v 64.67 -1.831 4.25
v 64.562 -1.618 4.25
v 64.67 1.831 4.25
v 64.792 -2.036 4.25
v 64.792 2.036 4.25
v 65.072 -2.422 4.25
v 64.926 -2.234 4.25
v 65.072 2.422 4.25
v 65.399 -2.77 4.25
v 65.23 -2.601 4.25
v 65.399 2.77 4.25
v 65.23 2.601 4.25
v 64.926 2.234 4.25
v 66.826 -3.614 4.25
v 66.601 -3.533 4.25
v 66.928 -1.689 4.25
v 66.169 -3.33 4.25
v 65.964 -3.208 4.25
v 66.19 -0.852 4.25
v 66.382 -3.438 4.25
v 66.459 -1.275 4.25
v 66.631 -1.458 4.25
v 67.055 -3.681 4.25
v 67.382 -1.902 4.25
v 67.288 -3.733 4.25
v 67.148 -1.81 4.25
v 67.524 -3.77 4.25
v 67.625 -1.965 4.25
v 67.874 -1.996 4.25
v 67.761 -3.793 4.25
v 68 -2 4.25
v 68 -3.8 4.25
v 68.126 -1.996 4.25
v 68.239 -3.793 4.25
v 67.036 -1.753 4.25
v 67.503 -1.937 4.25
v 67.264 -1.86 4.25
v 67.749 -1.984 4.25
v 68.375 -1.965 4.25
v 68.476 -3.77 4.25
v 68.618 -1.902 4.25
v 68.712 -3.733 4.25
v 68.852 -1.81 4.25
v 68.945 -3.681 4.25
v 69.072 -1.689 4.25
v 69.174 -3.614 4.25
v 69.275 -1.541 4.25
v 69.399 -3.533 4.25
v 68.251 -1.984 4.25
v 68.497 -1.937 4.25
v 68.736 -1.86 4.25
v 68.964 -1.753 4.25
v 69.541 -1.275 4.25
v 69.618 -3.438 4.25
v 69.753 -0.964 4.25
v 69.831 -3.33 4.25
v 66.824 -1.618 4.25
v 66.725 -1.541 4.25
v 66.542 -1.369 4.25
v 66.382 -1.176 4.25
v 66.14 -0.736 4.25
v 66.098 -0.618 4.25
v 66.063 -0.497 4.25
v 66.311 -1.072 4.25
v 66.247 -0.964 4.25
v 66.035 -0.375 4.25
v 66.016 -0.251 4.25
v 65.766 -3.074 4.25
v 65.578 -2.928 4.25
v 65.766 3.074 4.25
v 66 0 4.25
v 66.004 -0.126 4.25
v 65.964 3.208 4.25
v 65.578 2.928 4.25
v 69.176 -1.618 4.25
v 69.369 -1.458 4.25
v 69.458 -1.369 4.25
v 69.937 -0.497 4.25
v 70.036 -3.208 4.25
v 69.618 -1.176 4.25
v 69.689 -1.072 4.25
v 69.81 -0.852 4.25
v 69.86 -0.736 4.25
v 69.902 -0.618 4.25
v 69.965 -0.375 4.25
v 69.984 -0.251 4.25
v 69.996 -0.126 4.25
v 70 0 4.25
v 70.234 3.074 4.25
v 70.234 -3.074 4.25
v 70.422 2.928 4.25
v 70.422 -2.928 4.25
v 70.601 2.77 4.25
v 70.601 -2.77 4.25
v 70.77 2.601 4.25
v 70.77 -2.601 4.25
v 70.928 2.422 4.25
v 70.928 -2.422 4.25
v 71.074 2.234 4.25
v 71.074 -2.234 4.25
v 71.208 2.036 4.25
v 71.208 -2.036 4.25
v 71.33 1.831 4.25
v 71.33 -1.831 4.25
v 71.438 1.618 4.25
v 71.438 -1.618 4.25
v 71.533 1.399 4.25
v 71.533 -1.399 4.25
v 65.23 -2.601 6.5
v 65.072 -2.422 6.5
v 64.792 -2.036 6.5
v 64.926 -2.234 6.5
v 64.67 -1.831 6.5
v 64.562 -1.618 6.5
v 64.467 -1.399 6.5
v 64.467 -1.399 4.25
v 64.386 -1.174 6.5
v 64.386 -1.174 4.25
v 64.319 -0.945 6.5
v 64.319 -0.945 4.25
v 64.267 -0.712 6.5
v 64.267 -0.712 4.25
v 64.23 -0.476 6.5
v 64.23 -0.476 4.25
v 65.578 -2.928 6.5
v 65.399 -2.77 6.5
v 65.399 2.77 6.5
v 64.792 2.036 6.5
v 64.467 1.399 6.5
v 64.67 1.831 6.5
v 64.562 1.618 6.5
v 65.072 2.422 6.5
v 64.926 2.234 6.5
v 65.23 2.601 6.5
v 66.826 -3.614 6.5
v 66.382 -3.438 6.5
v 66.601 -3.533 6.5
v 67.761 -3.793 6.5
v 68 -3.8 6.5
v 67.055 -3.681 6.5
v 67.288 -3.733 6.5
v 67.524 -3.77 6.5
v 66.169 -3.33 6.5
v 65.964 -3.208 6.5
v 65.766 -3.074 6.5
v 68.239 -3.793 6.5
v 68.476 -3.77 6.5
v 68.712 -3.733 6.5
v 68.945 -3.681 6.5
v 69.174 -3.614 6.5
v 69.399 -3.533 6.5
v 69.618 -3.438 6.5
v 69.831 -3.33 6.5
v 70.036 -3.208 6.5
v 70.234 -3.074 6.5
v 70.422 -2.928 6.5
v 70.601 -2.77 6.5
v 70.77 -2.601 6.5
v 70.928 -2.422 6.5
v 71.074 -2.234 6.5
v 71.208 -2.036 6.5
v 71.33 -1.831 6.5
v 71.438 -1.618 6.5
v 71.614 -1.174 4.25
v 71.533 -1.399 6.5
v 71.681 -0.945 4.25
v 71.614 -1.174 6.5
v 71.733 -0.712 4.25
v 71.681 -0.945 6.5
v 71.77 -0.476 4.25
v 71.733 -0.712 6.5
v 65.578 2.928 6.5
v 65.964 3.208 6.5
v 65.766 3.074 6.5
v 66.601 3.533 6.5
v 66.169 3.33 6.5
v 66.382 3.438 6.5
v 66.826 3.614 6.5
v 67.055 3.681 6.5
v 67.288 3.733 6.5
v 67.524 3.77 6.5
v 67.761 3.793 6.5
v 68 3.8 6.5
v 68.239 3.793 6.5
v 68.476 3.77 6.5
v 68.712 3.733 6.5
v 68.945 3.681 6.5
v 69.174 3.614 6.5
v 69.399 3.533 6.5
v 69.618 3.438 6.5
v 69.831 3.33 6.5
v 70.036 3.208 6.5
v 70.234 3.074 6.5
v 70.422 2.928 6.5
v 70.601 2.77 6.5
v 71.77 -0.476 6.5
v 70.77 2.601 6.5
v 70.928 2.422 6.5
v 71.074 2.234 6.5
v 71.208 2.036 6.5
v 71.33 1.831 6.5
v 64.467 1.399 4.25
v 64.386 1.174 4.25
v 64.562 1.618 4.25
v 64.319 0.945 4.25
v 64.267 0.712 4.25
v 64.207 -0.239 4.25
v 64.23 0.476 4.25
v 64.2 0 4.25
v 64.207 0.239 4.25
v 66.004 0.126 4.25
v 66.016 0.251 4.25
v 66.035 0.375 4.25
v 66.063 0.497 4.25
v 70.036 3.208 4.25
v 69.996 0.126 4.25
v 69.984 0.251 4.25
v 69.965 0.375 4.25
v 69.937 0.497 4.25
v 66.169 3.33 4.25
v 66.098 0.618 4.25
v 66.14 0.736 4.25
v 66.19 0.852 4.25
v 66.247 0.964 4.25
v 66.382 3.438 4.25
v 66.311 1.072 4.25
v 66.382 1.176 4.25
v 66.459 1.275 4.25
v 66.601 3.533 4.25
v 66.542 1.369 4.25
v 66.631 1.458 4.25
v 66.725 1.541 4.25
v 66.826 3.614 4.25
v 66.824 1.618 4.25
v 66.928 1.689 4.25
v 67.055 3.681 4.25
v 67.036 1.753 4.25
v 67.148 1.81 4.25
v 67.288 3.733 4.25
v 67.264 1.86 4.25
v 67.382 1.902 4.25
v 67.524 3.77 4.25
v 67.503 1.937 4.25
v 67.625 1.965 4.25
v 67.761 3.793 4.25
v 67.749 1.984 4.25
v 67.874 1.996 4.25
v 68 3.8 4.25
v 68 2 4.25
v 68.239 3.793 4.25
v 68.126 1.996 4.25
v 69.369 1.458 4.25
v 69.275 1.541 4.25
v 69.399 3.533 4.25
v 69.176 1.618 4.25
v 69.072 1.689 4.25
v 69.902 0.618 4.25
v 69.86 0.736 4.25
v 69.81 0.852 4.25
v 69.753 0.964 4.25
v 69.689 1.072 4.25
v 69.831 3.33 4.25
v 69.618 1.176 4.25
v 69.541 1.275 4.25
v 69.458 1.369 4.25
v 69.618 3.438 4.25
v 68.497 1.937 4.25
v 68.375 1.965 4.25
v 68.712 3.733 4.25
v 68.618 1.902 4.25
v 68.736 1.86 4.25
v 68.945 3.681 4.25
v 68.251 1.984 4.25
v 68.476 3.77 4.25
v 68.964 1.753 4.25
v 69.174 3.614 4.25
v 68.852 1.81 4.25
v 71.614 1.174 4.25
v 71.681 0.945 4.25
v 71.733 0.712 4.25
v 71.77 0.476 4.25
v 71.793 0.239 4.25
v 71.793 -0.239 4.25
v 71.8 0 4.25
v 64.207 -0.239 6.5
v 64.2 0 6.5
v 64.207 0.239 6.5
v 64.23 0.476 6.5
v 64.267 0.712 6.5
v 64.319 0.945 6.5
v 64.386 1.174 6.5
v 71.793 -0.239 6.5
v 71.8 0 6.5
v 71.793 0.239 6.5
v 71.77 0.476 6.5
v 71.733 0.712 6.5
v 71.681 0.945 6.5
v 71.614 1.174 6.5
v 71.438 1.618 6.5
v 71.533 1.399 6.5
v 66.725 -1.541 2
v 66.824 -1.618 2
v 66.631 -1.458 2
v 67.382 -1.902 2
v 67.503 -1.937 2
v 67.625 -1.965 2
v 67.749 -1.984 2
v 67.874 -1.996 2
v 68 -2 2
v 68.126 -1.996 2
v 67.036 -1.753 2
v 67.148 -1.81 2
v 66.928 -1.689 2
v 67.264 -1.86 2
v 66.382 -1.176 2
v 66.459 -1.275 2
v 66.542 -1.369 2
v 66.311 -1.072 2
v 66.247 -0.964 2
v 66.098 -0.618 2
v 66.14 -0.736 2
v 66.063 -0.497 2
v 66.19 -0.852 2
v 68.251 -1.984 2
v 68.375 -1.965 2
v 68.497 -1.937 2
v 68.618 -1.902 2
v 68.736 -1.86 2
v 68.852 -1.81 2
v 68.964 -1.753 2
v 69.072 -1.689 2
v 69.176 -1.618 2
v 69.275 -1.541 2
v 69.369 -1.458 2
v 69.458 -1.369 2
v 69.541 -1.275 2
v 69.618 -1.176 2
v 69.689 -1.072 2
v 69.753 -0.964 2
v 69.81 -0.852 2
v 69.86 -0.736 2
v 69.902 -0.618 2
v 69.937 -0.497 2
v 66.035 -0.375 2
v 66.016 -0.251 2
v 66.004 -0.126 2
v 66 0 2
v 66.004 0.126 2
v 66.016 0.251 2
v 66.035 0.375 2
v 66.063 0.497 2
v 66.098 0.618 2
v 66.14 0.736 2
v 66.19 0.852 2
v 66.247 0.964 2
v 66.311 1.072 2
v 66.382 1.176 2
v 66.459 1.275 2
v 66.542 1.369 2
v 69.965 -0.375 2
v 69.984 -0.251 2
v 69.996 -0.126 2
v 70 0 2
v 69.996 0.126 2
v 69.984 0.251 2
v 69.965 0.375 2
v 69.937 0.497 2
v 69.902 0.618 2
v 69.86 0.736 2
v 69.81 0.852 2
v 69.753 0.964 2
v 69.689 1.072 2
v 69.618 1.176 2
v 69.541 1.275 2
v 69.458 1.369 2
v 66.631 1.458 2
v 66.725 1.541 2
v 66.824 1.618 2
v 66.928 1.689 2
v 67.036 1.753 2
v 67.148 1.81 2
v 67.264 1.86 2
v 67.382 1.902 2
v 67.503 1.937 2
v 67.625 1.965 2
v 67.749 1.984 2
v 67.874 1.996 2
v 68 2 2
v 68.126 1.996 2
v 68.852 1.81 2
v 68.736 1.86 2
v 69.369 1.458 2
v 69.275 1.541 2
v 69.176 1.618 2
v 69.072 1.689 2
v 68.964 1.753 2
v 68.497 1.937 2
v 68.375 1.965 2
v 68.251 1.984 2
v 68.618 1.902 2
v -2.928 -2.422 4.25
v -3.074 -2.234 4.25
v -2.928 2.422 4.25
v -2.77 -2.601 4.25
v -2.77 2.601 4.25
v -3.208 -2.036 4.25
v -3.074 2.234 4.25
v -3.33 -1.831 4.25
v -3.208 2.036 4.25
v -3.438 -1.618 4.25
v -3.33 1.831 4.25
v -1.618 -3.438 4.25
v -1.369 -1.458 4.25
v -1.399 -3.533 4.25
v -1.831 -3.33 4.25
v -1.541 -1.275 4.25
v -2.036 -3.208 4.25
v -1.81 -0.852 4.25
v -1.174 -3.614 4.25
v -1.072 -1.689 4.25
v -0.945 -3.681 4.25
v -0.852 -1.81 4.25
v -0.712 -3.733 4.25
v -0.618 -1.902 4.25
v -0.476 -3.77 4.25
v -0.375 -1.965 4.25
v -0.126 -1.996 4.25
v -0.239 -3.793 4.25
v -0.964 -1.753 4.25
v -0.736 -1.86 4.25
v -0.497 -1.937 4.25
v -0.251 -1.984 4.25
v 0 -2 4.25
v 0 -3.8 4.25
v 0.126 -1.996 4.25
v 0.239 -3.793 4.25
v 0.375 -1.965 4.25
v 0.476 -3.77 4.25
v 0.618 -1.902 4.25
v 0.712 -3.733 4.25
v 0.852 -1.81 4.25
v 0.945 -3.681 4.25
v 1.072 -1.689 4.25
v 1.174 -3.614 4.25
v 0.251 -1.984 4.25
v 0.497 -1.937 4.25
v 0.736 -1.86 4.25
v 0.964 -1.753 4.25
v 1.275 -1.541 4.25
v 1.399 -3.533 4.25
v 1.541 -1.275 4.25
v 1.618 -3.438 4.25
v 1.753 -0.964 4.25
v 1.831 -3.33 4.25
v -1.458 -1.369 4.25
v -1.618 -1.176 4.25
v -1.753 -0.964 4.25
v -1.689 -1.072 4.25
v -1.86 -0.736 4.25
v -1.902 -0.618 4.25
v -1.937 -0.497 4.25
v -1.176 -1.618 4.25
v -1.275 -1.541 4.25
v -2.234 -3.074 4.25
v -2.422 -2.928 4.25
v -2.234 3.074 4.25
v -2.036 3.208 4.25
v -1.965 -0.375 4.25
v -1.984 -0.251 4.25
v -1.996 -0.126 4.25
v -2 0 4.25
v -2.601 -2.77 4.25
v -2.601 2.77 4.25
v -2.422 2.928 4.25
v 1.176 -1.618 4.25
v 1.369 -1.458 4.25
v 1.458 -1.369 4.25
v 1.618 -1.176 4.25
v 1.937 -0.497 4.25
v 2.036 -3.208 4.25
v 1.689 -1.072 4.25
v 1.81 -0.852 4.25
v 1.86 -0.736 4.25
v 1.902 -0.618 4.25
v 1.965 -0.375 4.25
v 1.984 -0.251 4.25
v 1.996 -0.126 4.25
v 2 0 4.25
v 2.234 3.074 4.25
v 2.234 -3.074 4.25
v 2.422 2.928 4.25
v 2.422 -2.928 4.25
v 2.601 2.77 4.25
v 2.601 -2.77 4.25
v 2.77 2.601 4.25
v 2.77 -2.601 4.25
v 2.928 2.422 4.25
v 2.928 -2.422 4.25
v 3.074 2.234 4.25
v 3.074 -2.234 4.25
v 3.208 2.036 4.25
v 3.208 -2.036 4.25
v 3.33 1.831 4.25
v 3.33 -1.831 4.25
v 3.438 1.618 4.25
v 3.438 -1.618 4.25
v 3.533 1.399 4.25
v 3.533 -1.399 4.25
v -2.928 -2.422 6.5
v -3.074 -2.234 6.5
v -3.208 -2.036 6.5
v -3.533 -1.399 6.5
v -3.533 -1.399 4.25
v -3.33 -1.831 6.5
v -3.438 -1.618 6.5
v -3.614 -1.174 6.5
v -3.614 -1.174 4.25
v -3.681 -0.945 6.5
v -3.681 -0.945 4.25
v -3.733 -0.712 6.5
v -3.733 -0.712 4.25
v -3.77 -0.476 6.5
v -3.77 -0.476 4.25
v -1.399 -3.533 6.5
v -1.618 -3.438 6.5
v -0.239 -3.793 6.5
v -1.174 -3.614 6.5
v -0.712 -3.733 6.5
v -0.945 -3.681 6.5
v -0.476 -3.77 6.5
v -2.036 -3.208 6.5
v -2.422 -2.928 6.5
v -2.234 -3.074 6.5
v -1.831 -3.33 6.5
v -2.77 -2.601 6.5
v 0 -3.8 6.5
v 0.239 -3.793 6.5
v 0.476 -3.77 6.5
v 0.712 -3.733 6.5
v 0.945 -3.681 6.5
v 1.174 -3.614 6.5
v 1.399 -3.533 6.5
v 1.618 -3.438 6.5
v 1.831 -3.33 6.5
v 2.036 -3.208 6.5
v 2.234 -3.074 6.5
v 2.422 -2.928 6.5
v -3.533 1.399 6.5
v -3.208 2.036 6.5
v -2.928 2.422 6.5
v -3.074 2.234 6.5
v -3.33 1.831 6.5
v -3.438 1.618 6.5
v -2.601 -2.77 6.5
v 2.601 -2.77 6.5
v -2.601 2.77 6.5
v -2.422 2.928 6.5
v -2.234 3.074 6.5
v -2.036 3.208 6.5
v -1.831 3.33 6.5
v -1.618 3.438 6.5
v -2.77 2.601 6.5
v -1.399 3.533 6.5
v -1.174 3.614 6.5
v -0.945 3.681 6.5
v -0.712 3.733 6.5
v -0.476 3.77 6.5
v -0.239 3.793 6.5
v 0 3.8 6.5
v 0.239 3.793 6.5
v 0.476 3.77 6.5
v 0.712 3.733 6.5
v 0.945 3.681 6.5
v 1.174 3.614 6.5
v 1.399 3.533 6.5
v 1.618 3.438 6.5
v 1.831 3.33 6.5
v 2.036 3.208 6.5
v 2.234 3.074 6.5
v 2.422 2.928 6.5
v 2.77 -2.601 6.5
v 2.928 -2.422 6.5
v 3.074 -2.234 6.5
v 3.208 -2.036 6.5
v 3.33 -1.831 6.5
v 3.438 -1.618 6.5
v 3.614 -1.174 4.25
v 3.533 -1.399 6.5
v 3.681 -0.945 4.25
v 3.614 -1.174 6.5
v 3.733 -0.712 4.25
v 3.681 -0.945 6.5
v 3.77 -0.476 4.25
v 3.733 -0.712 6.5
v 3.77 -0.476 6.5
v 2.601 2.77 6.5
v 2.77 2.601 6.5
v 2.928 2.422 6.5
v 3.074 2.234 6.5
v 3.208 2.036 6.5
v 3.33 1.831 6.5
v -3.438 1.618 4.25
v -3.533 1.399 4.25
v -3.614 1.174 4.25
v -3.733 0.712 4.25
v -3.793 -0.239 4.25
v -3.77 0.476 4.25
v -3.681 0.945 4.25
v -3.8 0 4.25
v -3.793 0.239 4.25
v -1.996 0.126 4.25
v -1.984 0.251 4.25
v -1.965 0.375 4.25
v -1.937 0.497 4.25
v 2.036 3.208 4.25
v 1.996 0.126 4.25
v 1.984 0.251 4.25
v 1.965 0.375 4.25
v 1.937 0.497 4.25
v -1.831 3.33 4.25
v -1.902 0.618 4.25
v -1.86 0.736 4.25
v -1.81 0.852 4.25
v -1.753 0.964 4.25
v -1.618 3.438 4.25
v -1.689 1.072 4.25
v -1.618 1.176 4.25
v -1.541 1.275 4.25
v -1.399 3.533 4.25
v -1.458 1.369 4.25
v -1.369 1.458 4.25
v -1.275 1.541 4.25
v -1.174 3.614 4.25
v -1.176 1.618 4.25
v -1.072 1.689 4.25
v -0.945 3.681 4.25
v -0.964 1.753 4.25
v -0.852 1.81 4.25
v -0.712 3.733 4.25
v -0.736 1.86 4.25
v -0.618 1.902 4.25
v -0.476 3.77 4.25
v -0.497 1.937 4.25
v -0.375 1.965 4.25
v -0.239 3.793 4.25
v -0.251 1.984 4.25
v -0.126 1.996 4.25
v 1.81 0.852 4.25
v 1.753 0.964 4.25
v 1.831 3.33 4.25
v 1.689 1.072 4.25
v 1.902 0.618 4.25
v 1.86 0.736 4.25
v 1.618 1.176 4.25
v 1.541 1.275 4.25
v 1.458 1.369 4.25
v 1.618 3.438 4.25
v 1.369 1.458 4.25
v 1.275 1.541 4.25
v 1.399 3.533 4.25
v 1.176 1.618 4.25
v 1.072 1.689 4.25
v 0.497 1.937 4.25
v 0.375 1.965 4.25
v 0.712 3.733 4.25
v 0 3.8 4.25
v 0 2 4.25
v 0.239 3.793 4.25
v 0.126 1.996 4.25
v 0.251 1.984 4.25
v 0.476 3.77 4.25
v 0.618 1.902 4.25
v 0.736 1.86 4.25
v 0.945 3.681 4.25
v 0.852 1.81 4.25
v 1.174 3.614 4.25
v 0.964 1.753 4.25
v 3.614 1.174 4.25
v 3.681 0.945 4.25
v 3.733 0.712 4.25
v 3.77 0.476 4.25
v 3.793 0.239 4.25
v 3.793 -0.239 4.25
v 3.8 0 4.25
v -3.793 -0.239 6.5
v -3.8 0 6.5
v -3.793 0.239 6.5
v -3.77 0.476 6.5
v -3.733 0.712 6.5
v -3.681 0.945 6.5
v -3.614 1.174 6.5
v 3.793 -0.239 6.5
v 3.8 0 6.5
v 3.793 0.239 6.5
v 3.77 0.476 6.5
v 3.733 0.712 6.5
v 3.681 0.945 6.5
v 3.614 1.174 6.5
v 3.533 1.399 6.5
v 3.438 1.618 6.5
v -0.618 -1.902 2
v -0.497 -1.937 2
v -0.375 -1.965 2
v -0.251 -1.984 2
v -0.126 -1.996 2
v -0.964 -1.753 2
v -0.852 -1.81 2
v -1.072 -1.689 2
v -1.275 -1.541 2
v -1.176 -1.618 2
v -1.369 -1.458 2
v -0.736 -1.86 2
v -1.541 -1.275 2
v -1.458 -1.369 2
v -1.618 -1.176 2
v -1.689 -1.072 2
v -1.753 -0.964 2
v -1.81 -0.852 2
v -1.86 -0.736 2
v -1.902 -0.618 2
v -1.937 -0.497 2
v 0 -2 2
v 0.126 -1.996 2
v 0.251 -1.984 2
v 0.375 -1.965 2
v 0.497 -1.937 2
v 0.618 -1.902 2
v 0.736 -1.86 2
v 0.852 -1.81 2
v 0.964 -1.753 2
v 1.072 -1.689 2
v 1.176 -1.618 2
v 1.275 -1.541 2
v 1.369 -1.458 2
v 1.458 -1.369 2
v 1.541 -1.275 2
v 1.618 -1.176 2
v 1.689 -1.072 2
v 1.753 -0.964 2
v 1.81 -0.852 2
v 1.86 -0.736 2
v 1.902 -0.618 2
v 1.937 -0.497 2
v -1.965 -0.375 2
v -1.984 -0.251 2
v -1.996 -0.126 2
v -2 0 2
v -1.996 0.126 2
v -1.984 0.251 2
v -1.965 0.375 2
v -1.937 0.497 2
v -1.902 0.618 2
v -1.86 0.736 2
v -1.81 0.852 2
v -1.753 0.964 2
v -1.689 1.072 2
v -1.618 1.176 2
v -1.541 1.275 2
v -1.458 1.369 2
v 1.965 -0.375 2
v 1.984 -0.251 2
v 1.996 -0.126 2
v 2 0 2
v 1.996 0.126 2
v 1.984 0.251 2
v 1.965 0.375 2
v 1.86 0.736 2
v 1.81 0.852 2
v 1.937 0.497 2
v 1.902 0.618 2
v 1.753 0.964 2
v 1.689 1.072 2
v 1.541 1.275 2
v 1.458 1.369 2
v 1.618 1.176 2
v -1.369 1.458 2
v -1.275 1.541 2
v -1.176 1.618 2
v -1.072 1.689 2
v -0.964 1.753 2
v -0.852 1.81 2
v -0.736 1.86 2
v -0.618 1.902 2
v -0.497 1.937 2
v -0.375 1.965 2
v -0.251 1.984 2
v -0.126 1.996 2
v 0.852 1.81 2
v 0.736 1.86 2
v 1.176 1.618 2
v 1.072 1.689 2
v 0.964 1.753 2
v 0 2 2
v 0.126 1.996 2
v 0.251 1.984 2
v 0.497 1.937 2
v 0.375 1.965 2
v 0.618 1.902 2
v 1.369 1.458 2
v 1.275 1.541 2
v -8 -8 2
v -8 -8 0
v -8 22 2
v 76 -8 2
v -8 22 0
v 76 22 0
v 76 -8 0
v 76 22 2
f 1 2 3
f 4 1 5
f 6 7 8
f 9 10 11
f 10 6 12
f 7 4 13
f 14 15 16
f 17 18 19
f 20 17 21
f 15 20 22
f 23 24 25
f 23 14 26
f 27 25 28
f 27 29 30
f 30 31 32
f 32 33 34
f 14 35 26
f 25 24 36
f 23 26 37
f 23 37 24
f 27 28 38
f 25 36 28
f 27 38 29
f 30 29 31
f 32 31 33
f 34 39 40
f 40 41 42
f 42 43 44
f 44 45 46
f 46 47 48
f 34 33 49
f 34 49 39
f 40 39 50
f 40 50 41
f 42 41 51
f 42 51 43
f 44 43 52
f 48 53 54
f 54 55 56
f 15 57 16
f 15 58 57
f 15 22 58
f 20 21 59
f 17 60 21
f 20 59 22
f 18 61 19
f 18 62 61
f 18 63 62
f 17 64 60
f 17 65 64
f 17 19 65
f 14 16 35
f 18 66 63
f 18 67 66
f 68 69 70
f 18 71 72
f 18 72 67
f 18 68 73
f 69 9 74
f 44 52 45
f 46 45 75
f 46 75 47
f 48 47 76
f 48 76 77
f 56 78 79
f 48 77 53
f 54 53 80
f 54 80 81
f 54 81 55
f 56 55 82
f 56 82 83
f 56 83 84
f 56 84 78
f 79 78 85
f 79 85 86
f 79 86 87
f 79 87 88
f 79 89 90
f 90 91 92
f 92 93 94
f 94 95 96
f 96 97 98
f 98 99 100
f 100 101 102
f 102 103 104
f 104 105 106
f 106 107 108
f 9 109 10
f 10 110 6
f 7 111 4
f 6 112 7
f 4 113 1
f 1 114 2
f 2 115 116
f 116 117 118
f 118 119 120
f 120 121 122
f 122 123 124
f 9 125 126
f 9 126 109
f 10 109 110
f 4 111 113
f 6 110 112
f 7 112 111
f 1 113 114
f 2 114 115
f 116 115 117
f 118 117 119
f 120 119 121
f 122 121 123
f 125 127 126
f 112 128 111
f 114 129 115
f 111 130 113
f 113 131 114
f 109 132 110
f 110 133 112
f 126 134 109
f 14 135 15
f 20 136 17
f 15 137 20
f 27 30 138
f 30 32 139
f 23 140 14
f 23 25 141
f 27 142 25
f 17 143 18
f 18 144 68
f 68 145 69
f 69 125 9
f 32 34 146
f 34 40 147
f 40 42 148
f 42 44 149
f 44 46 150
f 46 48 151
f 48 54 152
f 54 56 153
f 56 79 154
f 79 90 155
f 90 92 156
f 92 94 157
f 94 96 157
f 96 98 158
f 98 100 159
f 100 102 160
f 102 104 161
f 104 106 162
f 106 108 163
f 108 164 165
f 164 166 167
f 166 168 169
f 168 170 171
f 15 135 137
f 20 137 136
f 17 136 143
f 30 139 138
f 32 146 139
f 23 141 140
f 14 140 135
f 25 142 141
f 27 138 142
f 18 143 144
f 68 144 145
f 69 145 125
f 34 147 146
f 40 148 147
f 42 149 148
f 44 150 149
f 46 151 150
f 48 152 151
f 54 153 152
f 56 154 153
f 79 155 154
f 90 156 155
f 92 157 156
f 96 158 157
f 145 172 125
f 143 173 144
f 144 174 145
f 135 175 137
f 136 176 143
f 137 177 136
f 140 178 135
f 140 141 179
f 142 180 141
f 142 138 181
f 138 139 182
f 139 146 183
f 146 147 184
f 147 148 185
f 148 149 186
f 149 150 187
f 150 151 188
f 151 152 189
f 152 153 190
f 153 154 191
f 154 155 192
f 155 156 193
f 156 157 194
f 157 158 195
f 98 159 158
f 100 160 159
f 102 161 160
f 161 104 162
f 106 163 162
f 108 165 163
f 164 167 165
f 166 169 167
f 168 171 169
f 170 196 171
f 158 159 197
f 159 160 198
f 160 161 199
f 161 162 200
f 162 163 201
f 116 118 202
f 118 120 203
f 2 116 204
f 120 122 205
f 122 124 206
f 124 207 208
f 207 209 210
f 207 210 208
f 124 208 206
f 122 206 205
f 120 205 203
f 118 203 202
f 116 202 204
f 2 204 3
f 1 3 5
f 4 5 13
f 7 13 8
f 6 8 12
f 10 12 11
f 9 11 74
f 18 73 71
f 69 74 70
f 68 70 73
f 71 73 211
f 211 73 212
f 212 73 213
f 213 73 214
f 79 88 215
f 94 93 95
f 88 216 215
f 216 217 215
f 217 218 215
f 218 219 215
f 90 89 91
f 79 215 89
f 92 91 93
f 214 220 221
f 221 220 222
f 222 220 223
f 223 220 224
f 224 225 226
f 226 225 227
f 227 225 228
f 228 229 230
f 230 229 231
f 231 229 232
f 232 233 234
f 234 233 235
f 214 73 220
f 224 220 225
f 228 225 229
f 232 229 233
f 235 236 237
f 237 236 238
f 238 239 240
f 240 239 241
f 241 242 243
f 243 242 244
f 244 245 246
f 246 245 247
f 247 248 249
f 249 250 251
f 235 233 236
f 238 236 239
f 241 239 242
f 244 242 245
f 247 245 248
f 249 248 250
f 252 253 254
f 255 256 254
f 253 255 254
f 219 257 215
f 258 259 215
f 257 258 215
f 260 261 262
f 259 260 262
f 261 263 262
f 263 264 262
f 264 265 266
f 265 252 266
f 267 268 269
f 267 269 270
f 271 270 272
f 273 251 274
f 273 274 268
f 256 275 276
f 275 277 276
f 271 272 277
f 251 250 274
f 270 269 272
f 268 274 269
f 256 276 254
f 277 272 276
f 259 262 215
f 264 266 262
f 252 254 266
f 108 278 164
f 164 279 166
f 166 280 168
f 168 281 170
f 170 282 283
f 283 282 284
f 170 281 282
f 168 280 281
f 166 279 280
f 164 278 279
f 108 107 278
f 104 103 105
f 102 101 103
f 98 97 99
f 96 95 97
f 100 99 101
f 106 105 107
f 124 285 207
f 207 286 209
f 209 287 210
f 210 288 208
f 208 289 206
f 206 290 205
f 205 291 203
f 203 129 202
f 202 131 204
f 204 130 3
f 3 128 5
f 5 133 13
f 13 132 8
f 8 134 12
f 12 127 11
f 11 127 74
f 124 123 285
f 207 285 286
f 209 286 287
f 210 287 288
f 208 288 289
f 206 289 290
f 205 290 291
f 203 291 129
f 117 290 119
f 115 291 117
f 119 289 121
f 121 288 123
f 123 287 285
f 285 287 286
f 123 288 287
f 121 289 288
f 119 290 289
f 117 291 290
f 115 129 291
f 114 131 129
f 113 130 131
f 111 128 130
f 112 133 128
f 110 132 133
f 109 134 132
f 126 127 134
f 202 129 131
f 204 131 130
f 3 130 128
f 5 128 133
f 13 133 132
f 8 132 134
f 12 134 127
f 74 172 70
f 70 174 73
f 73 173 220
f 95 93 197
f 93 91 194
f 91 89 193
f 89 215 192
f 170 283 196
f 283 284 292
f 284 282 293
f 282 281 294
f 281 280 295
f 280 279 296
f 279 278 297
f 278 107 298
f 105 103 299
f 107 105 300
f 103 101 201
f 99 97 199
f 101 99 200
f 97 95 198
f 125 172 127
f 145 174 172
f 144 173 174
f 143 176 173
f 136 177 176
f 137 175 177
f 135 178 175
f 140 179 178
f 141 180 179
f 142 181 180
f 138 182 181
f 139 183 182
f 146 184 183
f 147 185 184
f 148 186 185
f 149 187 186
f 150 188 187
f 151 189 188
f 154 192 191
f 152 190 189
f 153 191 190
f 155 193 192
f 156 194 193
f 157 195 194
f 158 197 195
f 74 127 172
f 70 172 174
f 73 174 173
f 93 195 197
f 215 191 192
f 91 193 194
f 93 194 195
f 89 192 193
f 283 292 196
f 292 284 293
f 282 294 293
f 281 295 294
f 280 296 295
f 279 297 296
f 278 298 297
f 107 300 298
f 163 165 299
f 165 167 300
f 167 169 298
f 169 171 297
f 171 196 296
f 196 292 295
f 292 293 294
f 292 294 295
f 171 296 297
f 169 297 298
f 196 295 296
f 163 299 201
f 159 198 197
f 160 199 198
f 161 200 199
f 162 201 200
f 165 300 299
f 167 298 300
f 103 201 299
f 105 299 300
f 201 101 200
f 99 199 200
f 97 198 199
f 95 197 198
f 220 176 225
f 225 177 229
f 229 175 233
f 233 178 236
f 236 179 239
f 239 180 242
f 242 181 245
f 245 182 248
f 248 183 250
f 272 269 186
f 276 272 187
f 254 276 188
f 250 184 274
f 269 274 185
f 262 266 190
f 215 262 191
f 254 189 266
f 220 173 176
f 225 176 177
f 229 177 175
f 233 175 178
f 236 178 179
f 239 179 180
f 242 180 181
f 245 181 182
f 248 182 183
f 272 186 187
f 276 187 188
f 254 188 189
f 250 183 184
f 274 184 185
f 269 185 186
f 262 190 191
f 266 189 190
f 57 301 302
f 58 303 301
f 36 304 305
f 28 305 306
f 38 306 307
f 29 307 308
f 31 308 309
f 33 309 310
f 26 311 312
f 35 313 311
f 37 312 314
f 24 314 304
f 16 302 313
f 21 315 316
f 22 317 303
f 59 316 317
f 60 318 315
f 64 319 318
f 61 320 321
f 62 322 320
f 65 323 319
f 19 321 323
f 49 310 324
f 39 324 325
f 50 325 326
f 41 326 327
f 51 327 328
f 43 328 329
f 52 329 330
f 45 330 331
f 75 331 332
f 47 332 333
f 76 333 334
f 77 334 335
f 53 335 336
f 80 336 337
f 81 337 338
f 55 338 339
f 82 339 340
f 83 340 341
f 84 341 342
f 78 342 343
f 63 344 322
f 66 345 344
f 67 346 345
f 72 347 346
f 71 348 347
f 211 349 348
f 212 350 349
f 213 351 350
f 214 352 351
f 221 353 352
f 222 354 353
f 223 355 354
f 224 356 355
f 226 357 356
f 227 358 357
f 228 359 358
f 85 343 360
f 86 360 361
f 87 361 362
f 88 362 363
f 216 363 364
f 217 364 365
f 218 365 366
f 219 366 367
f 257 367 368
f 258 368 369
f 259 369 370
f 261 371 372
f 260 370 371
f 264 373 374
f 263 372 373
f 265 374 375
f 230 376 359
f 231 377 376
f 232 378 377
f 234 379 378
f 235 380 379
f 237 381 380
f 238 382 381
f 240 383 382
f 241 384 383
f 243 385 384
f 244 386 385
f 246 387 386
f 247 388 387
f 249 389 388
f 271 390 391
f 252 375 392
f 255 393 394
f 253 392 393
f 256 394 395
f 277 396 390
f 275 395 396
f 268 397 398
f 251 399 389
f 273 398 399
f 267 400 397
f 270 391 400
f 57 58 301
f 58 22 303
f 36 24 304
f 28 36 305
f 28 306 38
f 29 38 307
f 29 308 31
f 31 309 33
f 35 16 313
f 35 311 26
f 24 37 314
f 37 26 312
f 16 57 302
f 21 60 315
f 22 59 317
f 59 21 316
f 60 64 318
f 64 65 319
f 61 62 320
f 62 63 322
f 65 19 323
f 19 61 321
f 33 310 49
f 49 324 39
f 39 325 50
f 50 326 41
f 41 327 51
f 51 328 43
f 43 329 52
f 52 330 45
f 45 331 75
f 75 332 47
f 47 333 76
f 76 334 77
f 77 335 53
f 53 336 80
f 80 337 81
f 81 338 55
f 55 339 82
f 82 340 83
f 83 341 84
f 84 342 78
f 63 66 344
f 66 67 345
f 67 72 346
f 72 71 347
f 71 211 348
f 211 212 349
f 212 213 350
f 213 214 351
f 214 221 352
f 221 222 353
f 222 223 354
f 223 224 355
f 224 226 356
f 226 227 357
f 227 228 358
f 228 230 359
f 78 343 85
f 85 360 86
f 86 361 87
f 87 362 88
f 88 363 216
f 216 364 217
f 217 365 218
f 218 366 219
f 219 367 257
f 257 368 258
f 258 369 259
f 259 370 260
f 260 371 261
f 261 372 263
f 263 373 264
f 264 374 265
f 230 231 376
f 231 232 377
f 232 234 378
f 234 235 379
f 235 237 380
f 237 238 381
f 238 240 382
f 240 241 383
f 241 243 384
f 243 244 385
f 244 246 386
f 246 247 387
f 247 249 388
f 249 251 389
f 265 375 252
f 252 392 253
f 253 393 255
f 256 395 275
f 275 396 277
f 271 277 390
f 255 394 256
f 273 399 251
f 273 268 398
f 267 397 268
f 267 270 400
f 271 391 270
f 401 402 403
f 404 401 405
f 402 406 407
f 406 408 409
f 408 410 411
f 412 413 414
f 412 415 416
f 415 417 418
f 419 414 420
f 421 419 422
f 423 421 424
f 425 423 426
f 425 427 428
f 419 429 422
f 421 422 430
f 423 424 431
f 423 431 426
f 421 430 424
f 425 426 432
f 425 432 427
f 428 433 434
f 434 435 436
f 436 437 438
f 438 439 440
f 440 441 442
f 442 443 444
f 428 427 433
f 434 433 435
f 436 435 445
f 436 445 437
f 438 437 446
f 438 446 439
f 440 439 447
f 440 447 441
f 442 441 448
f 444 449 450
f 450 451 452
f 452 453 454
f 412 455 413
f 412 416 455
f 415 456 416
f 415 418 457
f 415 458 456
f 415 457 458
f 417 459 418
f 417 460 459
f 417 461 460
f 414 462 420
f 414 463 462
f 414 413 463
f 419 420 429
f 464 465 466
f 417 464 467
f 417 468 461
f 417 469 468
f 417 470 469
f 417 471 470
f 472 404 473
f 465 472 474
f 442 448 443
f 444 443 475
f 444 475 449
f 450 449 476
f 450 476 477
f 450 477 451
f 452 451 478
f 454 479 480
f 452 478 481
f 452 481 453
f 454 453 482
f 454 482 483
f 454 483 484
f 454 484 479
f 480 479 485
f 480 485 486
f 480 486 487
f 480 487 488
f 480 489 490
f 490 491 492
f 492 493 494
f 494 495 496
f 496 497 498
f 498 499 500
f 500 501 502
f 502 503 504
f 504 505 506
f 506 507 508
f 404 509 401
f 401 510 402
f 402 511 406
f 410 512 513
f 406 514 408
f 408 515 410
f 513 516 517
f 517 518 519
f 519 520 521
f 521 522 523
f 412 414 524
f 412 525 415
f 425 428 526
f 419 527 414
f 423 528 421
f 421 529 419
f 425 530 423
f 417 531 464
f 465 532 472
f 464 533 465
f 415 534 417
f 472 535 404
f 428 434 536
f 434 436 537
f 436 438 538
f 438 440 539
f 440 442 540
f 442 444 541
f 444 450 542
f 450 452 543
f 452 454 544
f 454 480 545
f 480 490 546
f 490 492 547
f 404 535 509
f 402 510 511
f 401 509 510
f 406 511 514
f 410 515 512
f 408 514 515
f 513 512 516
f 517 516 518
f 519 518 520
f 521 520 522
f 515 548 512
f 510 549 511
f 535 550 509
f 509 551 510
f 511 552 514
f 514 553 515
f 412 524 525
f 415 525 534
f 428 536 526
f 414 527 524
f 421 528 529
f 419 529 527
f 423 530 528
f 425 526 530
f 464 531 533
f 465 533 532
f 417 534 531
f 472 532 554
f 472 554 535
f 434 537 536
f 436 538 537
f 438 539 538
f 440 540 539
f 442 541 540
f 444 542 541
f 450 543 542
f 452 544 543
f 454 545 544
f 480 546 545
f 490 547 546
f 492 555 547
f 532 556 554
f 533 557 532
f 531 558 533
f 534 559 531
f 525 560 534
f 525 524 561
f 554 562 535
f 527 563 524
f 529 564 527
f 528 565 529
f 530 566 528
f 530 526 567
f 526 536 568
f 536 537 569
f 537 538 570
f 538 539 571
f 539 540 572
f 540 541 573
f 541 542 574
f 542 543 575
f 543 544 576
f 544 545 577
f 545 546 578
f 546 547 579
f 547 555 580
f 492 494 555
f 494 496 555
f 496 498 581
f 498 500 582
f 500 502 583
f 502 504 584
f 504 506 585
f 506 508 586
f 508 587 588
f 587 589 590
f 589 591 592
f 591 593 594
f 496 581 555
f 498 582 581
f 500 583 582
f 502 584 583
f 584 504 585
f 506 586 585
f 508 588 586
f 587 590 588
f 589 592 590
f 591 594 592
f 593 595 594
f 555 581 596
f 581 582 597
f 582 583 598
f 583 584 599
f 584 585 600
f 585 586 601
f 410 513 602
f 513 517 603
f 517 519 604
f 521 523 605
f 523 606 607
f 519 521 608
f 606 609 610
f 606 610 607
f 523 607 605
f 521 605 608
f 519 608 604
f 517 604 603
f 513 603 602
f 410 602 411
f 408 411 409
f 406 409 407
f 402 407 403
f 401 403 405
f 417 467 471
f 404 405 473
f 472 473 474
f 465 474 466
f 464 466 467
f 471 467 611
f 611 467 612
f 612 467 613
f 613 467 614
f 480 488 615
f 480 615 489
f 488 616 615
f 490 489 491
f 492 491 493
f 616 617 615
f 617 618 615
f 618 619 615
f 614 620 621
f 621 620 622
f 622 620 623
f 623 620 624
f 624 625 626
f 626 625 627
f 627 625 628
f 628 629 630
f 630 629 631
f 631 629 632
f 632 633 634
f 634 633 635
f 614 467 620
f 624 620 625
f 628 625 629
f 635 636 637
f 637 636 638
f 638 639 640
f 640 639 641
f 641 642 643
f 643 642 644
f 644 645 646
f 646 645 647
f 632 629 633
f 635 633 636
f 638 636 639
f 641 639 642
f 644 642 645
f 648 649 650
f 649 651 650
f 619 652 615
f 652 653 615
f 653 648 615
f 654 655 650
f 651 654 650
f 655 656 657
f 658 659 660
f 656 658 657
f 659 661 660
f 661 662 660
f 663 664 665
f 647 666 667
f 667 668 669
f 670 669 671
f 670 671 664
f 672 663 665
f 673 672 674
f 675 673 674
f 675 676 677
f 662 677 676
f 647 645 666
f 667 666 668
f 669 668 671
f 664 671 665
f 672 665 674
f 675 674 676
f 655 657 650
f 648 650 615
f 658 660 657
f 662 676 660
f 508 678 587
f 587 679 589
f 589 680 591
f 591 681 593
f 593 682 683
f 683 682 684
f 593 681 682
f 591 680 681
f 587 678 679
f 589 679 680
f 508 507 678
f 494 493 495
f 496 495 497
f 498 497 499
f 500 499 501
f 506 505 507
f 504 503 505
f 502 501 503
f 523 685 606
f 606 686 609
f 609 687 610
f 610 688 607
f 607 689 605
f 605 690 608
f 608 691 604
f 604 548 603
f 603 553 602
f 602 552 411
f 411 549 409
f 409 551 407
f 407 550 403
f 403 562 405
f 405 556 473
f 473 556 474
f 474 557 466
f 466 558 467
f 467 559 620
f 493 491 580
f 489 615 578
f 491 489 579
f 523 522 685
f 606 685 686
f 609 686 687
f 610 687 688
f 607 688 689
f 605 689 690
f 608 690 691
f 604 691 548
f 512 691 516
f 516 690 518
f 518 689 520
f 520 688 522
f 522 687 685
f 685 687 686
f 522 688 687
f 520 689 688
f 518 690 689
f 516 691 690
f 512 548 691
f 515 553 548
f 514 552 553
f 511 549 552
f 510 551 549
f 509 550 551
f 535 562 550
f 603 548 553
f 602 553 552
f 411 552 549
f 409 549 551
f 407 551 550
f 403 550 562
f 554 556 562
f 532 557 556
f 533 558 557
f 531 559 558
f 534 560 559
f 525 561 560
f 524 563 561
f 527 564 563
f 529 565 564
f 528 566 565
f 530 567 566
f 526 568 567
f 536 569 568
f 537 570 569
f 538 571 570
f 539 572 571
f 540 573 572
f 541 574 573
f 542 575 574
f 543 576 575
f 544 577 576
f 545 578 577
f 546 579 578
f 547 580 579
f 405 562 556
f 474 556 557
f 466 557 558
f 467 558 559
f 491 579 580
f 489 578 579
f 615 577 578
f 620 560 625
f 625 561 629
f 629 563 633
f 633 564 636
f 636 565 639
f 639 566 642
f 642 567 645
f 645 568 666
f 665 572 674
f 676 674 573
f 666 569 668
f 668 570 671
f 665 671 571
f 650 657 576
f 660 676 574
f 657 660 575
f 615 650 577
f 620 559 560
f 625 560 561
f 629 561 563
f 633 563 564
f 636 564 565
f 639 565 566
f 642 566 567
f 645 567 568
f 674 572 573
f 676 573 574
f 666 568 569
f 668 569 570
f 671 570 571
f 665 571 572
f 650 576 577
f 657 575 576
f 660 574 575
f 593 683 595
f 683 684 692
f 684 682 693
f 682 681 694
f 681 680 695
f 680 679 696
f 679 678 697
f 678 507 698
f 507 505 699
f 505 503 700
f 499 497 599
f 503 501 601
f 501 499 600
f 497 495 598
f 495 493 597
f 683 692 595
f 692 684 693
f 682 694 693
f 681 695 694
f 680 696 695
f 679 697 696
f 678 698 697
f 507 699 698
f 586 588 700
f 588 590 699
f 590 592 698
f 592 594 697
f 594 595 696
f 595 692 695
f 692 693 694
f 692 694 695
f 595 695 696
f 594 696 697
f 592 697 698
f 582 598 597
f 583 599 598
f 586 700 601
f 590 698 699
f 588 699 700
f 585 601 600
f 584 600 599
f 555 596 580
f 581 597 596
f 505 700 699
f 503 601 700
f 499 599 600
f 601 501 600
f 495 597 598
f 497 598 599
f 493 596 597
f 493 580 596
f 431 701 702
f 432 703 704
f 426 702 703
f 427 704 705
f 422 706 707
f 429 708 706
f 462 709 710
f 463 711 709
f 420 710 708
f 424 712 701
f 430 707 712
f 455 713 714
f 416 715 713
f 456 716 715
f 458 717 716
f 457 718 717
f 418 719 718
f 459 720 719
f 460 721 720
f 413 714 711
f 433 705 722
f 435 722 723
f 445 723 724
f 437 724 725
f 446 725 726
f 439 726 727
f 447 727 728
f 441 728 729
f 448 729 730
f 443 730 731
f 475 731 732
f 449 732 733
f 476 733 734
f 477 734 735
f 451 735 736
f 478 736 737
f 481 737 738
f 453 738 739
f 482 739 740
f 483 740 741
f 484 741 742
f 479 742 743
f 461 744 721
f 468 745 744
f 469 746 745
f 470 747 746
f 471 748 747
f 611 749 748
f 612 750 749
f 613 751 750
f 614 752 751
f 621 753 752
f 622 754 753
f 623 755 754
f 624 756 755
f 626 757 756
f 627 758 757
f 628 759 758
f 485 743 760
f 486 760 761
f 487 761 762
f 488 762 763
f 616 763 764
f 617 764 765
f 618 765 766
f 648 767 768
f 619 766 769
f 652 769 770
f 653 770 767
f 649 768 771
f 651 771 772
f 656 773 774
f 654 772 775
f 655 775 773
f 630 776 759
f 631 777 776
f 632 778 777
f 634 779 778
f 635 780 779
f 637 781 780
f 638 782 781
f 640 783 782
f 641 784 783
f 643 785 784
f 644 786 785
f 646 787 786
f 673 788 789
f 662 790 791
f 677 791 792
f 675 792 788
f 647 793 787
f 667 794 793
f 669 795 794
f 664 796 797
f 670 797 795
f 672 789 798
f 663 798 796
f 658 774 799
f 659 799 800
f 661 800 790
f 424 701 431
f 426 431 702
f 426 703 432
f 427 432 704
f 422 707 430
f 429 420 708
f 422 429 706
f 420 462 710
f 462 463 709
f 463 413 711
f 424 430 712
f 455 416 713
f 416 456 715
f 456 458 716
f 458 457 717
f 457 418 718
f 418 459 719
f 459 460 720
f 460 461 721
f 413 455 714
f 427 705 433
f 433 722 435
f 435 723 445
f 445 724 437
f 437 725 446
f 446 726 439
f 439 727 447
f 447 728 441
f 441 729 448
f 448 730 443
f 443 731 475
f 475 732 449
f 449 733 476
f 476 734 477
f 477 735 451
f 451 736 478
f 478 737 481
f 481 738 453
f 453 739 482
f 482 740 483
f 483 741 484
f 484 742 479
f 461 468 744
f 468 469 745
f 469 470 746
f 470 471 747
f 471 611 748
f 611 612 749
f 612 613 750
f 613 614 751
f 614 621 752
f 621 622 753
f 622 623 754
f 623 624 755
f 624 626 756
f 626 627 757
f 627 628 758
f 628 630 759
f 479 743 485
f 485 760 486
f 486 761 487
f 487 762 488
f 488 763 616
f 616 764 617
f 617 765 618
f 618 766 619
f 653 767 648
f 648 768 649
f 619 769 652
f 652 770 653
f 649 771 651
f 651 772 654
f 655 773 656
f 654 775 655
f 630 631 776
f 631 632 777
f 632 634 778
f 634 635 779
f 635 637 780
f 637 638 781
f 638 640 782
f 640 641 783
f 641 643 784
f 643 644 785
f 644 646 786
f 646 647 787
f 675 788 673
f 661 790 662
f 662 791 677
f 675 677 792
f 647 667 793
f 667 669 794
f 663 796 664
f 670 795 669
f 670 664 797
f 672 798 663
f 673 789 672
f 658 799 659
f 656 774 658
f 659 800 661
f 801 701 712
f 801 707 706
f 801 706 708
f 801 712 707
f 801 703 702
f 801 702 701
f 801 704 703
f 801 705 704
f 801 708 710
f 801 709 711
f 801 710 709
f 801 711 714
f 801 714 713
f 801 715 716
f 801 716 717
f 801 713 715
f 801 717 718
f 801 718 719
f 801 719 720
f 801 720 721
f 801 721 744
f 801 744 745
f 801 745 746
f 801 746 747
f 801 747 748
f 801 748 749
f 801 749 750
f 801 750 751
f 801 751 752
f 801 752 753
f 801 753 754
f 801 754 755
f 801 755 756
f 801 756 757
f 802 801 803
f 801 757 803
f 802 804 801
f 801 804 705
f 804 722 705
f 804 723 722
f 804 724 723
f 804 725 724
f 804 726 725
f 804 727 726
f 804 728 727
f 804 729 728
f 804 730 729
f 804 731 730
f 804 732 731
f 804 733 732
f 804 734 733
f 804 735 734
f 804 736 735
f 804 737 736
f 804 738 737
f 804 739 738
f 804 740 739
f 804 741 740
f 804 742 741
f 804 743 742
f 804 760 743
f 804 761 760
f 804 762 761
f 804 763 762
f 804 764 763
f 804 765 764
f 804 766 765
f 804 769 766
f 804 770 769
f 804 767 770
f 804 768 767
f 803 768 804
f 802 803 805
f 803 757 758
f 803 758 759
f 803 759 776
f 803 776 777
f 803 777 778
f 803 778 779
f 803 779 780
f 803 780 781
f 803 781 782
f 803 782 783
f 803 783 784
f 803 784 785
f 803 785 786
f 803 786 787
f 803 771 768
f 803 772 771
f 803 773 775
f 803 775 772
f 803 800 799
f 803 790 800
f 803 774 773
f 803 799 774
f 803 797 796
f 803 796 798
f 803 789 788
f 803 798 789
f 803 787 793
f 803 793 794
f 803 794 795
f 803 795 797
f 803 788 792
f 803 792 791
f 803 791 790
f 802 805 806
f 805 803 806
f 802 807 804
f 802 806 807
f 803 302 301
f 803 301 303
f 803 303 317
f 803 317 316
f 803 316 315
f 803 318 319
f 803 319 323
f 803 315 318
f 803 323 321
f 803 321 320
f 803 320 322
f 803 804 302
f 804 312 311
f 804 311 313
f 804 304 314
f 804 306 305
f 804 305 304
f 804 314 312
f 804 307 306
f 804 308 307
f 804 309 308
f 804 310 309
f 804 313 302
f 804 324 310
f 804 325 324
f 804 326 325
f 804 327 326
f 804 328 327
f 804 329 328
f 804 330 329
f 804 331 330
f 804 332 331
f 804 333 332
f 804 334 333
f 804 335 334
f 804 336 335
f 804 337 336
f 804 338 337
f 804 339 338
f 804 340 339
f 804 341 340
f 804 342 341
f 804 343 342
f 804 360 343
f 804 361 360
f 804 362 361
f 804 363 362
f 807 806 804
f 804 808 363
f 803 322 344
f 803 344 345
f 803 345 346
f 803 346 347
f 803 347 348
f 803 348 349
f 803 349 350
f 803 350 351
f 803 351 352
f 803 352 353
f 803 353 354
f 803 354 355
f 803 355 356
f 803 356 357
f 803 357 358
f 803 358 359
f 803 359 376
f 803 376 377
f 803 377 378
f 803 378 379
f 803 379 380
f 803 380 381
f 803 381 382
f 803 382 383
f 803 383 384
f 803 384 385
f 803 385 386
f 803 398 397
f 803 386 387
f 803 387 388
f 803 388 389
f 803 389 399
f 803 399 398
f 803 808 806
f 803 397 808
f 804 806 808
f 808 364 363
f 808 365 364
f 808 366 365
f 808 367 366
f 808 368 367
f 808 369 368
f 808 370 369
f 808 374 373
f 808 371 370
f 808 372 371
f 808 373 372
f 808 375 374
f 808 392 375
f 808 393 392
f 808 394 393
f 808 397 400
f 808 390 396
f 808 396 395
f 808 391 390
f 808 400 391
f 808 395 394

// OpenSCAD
$fn=100;
hole_diameter=8;
hole_distance=68;
hole_depth=4.5;
height=30;
plane_height=2;

//backplate
translate([-hole_diameter,-hole_diameter,0]){
  cube([hole_distance+hole_diameter*2,height,plane_height]);
}

//peg #1
translate([hole_distance,0,plane_height]){
  color("red")
  translate([0,0,hole_depth/2]){
    cylinder(d=hole_diameter*.95, h=hole_depth/2);
  }
  cylinder(d=hole_diameter/2, h=hole_depth);
}

//peg #2
translate([0,0,plane_height]){
  color("red")
  translate([0,0,hole_depth/2]){
    cylinder(d=hole_diameter*.95, h=hole_depth/2);
  }
  cylinder(d=hole_diameter/2, h=hole_depth);
}
